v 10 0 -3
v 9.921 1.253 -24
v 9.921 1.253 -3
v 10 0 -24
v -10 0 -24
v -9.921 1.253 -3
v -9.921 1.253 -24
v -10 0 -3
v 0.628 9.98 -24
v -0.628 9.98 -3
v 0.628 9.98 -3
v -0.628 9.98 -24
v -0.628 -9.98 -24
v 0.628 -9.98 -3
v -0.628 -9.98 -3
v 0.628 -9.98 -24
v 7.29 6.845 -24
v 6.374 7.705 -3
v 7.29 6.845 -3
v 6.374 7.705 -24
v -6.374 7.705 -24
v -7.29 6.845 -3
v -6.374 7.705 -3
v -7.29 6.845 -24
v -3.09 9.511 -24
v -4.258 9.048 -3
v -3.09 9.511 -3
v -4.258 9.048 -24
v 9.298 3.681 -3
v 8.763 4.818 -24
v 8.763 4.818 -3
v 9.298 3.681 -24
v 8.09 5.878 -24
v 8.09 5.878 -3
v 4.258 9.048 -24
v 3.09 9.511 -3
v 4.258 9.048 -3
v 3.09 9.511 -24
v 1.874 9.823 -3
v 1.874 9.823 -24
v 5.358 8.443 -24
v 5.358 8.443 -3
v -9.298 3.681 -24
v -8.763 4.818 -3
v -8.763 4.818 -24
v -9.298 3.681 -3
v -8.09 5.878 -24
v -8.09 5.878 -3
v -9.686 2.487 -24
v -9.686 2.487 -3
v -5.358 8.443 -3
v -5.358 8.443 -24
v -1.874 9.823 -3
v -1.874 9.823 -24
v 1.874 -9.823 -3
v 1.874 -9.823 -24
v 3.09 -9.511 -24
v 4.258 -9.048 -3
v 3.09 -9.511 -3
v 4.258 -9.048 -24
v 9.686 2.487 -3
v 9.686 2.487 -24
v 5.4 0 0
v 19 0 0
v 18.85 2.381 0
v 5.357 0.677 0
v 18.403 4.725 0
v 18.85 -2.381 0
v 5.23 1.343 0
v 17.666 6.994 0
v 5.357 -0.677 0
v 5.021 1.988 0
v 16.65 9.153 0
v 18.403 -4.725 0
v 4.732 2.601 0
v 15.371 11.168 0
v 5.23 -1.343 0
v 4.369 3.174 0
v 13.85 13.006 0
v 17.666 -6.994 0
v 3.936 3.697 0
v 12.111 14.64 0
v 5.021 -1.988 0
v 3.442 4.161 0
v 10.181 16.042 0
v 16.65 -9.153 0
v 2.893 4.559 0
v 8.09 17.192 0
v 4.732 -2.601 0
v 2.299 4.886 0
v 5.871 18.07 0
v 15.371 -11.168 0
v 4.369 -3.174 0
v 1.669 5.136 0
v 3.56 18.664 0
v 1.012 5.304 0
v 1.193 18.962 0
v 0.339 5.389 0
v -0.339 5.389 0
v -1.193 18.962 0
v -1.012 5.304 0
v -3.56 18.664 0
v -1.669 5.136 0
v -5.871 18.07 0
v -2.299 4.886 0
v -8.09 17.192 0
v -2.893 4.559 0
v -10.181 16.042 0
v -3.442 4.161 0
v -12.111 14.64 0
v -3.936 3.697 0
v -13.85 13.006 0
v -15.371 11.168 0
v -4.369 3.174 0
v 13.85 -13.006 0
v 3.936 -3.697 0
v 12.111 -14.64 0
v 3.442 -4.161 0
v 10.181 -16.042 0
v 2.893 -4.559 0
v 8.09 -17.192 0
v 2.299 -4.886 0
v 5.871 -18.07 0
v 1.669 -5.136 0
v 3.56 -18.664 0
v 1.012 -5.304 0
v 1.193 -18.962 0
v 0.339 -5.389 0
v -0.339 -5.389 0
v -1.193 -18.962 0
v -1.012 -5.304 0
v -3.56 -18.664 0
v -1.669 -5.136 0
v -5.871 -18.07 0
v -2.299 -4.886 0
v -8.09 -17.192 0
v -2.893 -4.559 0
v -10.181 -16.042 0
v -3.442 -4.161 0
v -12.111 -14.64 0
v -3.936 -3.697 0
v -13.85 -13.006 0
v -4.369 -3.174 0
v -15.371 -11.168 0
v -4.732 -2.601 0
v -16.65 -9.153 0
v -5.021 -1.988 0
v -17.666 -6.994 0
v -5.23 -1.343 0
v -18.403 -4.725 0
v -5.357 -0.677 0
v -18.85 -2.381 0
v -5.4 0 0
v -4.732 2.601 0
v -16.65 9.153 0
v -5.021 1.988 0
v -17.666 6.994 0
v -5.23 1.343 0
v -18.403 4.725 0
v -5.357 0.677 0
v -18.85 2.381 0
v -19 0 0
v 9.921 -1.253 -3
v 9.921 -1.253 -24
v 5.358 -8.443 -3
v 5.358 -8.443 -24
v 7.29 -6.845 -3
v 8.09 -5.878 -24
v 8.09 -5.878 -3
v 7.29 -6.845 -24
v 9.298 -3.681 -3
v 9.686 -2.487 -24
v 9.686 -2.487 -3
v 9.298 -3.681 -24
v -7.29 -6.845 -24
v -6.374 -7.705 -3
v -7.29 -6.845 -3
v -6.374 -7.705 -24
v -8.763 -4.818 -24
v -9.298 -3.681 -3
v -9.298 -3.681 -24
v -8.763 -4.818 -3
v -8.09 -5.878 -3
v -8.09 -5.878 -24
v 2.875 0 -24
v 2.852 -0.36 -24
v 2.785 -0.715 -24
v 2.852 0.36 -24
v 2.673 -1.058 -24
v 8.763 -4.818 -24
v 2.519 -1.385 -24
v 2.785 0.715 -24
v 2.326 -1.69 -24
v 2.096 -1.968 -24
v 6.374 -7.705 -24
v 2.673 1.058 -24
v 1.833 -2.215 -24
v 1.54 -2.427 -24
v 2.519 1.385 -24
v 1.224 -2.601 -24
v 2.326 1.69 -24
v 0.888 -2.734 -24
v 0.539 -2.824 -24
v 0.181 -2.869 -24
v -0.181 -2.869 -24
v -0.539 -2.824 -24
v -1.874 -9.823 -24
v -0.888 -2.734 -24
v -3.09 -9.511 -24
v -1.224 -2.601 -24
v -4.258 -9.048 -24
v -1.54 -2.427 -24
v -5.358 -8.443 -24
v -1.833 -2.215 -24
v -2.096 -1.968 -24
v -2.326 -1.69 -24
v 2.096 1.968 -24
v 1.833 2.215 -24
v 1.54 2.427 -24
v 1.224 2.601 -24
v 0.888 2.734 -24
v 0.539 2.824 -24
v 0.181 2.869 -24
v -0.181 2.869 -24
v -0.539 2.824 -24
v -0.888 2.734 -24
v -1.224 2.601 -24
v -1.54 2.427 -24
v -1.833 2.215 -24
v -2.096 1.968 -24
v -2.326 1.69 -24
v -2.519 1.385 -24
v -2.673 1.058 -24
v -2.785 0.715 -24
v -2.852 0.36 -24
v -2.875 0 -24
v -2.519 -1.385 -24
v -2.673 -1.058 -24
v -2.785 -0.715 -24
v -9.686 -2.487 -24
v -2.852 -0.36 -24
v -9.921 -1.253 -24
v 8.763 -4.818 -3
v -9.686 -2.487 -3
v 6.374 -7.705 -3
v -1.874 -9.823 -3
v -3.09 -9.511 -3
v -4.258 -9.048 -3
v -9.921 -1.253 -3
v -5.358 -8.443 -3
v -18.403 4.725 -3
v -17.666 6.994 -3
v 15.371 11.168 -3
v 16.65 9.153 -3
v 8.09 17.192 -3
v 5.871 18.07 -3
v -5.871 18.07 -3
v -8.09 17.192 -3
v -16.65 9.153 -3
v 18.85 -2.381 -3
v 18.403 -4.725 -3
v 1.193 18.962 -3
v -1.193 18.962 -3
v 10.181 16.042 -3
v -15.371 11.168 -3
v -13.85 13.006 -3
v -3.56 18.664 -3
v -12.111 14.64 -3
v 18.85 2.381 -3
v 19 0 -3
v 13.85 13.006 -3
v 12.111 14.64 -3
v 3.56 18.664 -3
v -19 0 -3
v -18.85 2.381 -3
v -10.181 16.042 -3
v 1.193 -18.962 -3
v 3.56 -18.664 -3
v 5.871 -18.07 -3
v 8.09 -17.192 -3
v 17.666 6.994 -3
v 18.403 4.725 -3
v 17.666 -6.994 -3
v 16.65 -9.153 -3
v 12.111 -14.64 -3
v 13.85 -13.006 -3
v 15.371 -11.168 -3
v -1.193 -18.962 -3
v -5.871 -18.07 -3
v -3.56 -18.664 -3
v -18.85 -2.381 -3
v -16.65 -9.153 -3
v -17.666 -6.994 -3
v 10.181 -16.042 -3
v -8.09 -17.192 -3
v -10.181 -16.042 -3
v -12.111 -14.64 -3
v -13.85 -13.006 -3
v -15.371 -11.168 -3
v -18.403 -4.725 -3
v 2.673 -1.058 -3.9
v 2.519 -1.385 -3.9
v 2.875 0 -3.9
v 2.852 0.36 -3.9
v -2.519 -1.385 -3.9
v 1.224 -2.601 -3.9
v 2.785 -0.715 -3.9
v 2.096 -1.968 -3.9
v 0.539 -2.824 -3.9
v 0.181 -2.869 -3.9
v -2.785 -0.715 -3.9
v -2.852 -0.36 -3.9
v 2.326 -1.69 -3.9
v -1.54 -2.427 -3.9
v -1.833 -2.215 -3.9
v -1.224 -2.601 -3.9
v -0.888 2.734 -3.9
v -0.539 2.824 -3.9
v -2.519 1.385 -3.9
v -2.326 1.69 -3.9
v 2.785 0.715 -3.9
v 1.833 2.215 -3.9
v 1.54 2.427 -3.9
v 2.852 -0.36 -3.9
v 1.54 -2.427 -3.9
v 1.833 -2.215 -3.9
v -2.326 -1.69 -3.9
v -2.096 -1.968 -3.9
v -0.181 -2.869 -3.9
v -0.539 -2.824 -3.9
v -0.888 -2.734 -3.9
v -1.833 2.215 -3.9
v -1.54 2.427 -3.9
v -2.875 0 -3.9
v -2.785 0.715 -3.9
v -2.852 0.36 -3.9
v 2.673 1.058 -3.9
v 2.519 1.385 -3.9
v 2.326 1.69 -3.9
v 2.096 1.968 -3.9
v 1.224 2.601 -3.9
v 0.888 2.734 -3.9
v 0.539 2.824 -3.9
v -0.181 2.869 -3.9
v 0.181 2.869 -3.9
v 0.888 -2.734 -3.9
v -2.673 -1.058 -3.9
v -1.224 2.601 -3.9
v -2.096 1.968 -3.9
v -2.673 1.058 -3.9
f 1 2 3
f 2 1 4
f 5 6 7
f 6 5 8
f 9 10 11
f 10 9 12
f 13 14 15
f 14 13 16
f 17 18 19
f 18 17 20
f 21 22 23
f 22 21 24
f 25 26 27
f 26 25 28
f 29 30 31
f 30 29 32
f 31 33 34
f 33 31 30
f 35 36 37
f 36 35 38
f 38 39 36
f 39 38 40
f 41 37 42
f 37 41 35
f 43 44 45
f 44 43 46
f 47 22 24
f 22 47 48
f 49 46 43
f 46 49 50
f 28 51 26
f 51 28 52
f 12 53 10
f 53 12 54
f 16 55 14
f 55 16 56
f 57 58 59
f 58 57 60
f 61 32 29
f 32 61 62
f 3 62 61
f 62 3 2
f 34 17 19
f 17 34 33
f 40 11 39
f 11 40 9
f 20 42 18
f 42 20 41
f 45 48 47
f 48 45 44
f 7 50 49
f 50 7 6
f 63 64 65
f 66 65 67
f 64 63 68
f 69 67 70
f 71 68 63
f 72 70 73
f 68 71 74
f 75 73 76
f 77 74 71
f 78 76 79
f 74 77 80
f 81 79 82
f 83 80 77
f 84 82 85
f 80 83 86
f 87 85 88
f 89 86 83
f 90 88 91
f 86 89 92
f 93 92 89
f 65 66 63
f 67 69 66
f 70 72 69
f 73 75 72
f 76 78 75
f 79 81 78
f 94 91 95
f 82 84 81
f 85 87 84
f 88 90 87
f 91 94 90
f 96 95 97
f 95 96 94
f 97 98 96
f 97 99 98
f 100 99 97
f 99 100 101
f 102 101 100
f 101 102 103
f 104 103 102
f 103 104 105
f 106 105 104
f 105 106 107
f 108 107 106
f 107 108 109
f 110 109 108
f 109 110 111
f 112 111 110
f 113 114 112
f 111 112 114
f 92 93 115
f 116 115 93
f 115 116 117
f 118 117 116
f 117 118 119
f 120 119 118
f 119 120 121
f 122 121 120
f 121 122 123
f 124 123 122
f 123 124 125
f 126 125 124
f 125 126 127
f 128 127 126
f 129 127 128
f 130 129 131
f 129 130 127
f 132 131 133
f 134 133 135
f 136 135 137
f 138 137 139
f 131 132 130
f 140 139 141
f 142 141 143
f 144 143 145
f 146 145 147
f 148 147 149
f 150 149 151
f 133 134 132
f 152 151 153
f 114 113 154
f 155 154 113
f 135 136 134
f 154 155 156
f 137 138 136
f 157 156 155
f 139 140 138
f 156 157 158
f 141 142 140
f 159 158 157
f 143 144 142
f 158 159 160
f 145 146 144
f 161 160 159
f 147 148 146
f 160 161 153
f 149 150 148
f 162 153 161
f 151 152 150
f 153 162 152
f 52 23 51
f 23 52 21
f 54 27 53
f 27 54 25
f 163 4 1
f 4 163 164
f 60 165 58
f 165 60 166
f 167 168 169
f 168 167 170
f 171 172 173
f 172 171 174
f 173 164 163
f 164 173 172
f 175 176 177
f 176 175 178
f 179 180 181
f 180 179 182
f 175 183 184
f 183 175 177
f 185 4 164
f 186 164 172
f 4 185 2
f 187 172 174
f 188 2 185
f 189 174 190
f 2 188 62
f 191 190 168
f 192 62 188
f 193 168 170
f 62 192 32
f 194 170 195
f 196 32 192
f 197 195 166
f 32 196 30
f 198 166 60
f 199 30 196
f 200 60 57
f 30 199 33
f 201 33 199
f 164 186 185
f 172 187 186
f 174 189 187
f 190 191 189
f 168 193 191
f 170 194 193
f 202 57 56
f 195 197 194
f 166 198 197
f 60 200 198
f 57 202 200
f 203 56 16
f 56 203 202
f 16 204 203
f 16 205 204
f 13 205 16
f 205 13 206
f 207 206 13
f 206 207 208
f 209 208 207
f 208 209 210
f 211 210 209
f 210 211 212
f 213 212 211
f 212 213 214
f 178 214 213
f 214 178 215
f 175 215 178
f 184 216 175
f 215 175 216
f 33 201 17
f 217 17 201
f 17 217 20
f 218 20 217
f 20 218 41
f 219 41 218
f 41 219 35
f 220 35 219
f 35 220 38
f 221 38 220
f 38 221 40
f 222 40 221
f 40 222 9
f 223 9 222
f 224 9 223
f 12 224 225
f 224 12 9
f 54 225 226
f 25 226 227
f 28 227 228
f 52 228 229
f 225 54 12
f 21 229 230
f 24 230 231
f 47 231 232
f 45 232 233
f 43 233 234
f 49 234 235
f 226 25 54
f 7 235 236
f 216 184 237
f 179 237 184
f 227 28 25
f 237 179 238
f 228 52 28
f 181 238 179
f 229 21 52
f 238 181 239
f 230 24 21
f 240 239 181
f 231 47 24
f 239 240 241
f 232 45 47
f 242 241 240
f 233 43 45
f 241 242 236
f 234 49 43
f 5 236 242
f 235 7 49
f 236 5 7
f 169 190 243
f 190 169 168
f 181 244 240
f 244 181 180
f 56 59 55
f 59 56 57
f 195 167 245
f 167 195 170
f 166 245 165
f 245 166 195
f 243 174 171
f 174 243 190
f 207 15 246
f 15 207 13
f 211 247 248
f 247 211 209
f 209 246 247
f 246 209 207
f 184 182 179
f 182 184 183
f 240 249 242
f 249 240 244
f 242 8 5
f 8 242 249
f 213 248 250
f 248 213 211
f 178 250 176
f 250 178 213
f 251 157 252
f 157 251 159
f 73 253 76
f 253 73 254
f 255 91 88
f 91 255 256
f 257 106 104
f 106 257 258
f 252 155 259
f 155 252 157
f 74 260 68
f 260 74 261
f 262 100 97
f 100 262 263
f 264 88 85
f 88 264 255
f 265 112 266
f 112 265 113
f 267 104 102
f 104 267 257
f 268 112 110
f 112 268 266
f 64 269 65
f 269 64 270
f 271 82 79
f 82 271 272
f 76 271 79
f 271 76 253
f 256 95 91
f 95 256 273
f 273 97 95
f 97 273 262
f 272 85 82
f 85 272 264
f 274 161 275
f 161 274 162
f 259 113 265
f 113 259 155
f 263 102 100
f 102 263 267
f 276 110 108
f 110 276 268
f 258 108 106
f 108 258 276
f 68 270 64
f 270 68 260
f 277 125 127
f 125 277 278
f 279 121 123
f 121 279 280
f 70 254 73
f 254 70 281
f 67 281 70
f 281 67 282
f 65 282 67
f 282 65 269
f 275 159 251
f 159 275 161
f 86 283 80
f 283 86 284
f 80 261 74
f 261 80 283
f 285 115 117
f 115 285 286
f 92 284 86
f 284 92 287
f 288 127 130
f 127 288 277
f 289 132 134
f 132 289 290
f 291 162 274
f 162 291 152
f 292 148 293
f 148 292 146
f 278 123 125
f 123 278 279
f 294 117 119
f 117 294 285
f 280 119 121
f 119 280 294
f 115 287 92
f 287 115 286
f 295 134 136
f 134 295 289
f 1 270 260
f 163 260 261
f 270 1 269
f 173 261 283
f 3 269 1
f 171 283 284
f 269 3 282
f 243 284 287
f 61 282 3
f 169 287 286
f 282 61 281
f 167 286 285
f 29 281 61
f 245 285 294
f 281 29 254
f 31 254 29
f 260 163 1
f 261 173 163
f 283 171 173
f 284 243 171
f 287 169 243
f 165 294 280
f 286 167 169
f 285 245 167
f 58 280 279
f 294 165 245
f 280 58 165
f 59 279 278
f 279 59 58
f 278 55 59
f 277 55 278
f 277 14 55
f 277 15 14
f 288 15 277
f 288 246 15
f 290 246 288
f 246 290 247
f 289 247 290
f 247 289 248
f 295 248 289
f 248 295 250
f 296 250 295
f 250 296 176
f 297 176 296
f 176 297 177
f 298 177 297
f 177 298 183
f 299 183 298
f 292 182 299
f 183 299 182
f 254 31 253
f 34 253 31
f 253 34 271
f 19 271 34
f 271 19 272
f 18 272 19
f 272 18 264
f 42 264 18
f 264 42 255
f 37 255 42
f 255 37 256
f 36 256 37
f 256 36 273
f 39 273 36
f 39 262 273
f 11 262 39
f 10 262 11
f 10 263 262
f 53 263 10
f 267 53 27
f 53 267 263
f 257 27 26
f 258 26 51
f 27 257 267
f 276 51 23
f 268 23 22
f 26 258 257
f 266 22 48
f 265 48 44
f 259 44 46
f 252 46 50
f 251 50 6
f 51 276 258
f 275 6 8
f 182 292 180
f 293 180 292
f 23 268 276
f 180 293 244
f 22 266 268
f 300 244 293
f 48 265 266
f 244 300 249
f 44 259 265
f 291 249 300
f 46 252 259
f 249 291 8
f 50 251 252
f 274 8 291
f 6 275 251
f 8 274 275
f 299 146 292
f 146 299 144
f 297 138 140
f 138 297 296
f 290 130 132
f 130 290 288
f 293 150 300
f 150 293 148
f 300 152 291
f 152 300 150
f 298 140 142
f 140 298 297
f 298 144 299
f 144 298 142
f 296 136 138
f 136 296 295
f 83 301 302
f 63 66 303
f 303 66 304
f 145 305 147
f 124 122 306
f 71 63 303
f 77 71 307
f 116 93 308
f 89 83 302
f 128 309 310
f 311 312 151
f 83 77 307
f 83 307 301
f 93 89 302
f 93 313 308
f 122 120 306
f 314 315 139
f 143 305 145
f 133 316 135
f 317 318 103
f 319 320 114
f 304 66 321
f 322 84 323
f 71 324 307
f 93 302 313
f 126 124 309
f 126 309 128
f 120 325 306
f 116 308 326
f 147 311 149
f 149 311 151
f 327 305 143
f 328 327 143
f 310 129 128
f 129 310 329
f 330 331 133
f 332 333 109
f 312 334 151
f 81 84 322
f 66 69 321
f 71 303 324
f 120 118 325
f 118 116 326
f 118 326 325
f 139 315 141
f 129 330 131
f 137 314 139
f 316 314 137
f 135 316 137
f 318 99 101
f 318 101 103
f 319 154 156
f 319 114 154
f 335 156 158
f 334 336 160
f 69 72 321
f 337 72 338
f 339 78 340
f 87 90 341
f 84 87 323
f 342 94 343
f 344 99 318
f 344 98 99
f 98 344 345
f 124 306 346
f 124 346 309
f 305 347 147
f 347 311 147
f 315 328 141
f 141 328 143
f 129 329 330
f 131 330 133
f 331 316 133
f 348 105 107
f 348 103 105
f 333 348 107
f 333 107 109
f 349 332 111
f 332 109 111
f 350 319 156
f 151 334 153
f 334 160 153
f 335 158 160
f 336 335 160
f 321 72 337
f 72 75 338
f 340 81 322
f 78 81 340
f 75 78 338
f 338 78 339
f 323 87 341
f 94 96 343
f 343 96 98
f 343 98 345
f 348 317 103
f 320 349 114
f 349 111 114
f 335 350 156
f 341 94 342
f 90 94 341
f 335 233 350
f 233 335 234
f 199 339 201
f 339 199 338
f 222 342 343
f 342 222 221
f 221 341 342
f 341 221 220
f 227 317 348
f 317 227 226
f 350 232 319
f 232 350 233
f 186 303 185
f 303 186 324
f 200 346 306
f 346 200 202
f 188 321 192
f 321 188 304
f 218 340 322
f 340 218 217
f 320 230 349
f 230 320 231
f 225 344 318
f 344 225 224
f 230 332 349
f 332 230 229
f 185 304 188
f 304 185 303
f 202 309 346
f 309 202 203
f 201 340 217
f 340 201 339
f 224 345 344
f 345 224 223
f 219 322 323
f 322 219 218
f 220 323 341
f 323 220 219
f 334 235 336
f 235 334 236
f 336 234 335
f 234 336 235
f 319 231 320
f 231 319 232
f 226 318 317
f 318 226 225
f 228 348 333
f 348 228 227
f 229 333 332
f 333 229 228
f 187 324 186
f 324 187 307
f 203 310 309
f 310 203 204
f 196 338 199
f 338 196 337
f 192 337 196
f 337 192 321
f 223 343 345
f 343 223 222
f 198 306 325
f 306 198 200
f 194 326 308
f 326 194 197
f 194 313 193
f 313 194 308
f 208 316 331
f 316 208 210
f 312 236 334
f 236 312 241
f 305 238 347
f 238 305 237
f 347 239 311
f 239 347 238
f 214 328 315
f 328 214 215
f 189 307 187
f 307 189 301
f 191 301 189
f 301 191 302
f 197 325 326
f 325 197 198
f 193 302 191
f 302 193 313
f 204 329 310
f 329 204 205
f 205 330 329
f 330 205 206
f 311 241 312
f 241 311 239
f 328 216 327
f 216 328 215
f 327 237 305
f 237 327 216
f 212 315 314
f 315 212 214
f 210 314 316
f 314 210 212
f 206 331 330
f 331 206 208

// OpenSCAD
$fn = 50;


difference() {
	union() {
		translate(v = [0, 0, -24.0000000000]) {
			cylinder(h = 24, r = 10.0000000000);
		}
		translate(v = [0, 0, -3.0000000000]) {
			cylinder(h = 3, r = 19.0000000000);
		}
	}
	union() {
		translate(v = [0, 0, 0]) {
			rotate(a = [0, 0, 0]) {
				difference() {
					union() {
						#translate(v = [0, 0, -24.0000000000]) {
							cylinder(h = 24, r = 2.6000000000);
						}
						#translate(v = [0, 0, -3.9000000000]) {
							cylinder(h = 3.9000000000, r = 10.0000000000, r1 = 2.8750000000, r2 = 5.4000000000);
						}
						#translate(v = [0, 0, -24.0000000000]) {
							cylinder(h = 24, r = 2.8750000000);
						}
						#translate(v = [0, 0, -24.0000000000]) {
							cylinder(h = 24, r = 2.6000000000);
						}
					}
					union();
				}
			}
		}
	}
}
